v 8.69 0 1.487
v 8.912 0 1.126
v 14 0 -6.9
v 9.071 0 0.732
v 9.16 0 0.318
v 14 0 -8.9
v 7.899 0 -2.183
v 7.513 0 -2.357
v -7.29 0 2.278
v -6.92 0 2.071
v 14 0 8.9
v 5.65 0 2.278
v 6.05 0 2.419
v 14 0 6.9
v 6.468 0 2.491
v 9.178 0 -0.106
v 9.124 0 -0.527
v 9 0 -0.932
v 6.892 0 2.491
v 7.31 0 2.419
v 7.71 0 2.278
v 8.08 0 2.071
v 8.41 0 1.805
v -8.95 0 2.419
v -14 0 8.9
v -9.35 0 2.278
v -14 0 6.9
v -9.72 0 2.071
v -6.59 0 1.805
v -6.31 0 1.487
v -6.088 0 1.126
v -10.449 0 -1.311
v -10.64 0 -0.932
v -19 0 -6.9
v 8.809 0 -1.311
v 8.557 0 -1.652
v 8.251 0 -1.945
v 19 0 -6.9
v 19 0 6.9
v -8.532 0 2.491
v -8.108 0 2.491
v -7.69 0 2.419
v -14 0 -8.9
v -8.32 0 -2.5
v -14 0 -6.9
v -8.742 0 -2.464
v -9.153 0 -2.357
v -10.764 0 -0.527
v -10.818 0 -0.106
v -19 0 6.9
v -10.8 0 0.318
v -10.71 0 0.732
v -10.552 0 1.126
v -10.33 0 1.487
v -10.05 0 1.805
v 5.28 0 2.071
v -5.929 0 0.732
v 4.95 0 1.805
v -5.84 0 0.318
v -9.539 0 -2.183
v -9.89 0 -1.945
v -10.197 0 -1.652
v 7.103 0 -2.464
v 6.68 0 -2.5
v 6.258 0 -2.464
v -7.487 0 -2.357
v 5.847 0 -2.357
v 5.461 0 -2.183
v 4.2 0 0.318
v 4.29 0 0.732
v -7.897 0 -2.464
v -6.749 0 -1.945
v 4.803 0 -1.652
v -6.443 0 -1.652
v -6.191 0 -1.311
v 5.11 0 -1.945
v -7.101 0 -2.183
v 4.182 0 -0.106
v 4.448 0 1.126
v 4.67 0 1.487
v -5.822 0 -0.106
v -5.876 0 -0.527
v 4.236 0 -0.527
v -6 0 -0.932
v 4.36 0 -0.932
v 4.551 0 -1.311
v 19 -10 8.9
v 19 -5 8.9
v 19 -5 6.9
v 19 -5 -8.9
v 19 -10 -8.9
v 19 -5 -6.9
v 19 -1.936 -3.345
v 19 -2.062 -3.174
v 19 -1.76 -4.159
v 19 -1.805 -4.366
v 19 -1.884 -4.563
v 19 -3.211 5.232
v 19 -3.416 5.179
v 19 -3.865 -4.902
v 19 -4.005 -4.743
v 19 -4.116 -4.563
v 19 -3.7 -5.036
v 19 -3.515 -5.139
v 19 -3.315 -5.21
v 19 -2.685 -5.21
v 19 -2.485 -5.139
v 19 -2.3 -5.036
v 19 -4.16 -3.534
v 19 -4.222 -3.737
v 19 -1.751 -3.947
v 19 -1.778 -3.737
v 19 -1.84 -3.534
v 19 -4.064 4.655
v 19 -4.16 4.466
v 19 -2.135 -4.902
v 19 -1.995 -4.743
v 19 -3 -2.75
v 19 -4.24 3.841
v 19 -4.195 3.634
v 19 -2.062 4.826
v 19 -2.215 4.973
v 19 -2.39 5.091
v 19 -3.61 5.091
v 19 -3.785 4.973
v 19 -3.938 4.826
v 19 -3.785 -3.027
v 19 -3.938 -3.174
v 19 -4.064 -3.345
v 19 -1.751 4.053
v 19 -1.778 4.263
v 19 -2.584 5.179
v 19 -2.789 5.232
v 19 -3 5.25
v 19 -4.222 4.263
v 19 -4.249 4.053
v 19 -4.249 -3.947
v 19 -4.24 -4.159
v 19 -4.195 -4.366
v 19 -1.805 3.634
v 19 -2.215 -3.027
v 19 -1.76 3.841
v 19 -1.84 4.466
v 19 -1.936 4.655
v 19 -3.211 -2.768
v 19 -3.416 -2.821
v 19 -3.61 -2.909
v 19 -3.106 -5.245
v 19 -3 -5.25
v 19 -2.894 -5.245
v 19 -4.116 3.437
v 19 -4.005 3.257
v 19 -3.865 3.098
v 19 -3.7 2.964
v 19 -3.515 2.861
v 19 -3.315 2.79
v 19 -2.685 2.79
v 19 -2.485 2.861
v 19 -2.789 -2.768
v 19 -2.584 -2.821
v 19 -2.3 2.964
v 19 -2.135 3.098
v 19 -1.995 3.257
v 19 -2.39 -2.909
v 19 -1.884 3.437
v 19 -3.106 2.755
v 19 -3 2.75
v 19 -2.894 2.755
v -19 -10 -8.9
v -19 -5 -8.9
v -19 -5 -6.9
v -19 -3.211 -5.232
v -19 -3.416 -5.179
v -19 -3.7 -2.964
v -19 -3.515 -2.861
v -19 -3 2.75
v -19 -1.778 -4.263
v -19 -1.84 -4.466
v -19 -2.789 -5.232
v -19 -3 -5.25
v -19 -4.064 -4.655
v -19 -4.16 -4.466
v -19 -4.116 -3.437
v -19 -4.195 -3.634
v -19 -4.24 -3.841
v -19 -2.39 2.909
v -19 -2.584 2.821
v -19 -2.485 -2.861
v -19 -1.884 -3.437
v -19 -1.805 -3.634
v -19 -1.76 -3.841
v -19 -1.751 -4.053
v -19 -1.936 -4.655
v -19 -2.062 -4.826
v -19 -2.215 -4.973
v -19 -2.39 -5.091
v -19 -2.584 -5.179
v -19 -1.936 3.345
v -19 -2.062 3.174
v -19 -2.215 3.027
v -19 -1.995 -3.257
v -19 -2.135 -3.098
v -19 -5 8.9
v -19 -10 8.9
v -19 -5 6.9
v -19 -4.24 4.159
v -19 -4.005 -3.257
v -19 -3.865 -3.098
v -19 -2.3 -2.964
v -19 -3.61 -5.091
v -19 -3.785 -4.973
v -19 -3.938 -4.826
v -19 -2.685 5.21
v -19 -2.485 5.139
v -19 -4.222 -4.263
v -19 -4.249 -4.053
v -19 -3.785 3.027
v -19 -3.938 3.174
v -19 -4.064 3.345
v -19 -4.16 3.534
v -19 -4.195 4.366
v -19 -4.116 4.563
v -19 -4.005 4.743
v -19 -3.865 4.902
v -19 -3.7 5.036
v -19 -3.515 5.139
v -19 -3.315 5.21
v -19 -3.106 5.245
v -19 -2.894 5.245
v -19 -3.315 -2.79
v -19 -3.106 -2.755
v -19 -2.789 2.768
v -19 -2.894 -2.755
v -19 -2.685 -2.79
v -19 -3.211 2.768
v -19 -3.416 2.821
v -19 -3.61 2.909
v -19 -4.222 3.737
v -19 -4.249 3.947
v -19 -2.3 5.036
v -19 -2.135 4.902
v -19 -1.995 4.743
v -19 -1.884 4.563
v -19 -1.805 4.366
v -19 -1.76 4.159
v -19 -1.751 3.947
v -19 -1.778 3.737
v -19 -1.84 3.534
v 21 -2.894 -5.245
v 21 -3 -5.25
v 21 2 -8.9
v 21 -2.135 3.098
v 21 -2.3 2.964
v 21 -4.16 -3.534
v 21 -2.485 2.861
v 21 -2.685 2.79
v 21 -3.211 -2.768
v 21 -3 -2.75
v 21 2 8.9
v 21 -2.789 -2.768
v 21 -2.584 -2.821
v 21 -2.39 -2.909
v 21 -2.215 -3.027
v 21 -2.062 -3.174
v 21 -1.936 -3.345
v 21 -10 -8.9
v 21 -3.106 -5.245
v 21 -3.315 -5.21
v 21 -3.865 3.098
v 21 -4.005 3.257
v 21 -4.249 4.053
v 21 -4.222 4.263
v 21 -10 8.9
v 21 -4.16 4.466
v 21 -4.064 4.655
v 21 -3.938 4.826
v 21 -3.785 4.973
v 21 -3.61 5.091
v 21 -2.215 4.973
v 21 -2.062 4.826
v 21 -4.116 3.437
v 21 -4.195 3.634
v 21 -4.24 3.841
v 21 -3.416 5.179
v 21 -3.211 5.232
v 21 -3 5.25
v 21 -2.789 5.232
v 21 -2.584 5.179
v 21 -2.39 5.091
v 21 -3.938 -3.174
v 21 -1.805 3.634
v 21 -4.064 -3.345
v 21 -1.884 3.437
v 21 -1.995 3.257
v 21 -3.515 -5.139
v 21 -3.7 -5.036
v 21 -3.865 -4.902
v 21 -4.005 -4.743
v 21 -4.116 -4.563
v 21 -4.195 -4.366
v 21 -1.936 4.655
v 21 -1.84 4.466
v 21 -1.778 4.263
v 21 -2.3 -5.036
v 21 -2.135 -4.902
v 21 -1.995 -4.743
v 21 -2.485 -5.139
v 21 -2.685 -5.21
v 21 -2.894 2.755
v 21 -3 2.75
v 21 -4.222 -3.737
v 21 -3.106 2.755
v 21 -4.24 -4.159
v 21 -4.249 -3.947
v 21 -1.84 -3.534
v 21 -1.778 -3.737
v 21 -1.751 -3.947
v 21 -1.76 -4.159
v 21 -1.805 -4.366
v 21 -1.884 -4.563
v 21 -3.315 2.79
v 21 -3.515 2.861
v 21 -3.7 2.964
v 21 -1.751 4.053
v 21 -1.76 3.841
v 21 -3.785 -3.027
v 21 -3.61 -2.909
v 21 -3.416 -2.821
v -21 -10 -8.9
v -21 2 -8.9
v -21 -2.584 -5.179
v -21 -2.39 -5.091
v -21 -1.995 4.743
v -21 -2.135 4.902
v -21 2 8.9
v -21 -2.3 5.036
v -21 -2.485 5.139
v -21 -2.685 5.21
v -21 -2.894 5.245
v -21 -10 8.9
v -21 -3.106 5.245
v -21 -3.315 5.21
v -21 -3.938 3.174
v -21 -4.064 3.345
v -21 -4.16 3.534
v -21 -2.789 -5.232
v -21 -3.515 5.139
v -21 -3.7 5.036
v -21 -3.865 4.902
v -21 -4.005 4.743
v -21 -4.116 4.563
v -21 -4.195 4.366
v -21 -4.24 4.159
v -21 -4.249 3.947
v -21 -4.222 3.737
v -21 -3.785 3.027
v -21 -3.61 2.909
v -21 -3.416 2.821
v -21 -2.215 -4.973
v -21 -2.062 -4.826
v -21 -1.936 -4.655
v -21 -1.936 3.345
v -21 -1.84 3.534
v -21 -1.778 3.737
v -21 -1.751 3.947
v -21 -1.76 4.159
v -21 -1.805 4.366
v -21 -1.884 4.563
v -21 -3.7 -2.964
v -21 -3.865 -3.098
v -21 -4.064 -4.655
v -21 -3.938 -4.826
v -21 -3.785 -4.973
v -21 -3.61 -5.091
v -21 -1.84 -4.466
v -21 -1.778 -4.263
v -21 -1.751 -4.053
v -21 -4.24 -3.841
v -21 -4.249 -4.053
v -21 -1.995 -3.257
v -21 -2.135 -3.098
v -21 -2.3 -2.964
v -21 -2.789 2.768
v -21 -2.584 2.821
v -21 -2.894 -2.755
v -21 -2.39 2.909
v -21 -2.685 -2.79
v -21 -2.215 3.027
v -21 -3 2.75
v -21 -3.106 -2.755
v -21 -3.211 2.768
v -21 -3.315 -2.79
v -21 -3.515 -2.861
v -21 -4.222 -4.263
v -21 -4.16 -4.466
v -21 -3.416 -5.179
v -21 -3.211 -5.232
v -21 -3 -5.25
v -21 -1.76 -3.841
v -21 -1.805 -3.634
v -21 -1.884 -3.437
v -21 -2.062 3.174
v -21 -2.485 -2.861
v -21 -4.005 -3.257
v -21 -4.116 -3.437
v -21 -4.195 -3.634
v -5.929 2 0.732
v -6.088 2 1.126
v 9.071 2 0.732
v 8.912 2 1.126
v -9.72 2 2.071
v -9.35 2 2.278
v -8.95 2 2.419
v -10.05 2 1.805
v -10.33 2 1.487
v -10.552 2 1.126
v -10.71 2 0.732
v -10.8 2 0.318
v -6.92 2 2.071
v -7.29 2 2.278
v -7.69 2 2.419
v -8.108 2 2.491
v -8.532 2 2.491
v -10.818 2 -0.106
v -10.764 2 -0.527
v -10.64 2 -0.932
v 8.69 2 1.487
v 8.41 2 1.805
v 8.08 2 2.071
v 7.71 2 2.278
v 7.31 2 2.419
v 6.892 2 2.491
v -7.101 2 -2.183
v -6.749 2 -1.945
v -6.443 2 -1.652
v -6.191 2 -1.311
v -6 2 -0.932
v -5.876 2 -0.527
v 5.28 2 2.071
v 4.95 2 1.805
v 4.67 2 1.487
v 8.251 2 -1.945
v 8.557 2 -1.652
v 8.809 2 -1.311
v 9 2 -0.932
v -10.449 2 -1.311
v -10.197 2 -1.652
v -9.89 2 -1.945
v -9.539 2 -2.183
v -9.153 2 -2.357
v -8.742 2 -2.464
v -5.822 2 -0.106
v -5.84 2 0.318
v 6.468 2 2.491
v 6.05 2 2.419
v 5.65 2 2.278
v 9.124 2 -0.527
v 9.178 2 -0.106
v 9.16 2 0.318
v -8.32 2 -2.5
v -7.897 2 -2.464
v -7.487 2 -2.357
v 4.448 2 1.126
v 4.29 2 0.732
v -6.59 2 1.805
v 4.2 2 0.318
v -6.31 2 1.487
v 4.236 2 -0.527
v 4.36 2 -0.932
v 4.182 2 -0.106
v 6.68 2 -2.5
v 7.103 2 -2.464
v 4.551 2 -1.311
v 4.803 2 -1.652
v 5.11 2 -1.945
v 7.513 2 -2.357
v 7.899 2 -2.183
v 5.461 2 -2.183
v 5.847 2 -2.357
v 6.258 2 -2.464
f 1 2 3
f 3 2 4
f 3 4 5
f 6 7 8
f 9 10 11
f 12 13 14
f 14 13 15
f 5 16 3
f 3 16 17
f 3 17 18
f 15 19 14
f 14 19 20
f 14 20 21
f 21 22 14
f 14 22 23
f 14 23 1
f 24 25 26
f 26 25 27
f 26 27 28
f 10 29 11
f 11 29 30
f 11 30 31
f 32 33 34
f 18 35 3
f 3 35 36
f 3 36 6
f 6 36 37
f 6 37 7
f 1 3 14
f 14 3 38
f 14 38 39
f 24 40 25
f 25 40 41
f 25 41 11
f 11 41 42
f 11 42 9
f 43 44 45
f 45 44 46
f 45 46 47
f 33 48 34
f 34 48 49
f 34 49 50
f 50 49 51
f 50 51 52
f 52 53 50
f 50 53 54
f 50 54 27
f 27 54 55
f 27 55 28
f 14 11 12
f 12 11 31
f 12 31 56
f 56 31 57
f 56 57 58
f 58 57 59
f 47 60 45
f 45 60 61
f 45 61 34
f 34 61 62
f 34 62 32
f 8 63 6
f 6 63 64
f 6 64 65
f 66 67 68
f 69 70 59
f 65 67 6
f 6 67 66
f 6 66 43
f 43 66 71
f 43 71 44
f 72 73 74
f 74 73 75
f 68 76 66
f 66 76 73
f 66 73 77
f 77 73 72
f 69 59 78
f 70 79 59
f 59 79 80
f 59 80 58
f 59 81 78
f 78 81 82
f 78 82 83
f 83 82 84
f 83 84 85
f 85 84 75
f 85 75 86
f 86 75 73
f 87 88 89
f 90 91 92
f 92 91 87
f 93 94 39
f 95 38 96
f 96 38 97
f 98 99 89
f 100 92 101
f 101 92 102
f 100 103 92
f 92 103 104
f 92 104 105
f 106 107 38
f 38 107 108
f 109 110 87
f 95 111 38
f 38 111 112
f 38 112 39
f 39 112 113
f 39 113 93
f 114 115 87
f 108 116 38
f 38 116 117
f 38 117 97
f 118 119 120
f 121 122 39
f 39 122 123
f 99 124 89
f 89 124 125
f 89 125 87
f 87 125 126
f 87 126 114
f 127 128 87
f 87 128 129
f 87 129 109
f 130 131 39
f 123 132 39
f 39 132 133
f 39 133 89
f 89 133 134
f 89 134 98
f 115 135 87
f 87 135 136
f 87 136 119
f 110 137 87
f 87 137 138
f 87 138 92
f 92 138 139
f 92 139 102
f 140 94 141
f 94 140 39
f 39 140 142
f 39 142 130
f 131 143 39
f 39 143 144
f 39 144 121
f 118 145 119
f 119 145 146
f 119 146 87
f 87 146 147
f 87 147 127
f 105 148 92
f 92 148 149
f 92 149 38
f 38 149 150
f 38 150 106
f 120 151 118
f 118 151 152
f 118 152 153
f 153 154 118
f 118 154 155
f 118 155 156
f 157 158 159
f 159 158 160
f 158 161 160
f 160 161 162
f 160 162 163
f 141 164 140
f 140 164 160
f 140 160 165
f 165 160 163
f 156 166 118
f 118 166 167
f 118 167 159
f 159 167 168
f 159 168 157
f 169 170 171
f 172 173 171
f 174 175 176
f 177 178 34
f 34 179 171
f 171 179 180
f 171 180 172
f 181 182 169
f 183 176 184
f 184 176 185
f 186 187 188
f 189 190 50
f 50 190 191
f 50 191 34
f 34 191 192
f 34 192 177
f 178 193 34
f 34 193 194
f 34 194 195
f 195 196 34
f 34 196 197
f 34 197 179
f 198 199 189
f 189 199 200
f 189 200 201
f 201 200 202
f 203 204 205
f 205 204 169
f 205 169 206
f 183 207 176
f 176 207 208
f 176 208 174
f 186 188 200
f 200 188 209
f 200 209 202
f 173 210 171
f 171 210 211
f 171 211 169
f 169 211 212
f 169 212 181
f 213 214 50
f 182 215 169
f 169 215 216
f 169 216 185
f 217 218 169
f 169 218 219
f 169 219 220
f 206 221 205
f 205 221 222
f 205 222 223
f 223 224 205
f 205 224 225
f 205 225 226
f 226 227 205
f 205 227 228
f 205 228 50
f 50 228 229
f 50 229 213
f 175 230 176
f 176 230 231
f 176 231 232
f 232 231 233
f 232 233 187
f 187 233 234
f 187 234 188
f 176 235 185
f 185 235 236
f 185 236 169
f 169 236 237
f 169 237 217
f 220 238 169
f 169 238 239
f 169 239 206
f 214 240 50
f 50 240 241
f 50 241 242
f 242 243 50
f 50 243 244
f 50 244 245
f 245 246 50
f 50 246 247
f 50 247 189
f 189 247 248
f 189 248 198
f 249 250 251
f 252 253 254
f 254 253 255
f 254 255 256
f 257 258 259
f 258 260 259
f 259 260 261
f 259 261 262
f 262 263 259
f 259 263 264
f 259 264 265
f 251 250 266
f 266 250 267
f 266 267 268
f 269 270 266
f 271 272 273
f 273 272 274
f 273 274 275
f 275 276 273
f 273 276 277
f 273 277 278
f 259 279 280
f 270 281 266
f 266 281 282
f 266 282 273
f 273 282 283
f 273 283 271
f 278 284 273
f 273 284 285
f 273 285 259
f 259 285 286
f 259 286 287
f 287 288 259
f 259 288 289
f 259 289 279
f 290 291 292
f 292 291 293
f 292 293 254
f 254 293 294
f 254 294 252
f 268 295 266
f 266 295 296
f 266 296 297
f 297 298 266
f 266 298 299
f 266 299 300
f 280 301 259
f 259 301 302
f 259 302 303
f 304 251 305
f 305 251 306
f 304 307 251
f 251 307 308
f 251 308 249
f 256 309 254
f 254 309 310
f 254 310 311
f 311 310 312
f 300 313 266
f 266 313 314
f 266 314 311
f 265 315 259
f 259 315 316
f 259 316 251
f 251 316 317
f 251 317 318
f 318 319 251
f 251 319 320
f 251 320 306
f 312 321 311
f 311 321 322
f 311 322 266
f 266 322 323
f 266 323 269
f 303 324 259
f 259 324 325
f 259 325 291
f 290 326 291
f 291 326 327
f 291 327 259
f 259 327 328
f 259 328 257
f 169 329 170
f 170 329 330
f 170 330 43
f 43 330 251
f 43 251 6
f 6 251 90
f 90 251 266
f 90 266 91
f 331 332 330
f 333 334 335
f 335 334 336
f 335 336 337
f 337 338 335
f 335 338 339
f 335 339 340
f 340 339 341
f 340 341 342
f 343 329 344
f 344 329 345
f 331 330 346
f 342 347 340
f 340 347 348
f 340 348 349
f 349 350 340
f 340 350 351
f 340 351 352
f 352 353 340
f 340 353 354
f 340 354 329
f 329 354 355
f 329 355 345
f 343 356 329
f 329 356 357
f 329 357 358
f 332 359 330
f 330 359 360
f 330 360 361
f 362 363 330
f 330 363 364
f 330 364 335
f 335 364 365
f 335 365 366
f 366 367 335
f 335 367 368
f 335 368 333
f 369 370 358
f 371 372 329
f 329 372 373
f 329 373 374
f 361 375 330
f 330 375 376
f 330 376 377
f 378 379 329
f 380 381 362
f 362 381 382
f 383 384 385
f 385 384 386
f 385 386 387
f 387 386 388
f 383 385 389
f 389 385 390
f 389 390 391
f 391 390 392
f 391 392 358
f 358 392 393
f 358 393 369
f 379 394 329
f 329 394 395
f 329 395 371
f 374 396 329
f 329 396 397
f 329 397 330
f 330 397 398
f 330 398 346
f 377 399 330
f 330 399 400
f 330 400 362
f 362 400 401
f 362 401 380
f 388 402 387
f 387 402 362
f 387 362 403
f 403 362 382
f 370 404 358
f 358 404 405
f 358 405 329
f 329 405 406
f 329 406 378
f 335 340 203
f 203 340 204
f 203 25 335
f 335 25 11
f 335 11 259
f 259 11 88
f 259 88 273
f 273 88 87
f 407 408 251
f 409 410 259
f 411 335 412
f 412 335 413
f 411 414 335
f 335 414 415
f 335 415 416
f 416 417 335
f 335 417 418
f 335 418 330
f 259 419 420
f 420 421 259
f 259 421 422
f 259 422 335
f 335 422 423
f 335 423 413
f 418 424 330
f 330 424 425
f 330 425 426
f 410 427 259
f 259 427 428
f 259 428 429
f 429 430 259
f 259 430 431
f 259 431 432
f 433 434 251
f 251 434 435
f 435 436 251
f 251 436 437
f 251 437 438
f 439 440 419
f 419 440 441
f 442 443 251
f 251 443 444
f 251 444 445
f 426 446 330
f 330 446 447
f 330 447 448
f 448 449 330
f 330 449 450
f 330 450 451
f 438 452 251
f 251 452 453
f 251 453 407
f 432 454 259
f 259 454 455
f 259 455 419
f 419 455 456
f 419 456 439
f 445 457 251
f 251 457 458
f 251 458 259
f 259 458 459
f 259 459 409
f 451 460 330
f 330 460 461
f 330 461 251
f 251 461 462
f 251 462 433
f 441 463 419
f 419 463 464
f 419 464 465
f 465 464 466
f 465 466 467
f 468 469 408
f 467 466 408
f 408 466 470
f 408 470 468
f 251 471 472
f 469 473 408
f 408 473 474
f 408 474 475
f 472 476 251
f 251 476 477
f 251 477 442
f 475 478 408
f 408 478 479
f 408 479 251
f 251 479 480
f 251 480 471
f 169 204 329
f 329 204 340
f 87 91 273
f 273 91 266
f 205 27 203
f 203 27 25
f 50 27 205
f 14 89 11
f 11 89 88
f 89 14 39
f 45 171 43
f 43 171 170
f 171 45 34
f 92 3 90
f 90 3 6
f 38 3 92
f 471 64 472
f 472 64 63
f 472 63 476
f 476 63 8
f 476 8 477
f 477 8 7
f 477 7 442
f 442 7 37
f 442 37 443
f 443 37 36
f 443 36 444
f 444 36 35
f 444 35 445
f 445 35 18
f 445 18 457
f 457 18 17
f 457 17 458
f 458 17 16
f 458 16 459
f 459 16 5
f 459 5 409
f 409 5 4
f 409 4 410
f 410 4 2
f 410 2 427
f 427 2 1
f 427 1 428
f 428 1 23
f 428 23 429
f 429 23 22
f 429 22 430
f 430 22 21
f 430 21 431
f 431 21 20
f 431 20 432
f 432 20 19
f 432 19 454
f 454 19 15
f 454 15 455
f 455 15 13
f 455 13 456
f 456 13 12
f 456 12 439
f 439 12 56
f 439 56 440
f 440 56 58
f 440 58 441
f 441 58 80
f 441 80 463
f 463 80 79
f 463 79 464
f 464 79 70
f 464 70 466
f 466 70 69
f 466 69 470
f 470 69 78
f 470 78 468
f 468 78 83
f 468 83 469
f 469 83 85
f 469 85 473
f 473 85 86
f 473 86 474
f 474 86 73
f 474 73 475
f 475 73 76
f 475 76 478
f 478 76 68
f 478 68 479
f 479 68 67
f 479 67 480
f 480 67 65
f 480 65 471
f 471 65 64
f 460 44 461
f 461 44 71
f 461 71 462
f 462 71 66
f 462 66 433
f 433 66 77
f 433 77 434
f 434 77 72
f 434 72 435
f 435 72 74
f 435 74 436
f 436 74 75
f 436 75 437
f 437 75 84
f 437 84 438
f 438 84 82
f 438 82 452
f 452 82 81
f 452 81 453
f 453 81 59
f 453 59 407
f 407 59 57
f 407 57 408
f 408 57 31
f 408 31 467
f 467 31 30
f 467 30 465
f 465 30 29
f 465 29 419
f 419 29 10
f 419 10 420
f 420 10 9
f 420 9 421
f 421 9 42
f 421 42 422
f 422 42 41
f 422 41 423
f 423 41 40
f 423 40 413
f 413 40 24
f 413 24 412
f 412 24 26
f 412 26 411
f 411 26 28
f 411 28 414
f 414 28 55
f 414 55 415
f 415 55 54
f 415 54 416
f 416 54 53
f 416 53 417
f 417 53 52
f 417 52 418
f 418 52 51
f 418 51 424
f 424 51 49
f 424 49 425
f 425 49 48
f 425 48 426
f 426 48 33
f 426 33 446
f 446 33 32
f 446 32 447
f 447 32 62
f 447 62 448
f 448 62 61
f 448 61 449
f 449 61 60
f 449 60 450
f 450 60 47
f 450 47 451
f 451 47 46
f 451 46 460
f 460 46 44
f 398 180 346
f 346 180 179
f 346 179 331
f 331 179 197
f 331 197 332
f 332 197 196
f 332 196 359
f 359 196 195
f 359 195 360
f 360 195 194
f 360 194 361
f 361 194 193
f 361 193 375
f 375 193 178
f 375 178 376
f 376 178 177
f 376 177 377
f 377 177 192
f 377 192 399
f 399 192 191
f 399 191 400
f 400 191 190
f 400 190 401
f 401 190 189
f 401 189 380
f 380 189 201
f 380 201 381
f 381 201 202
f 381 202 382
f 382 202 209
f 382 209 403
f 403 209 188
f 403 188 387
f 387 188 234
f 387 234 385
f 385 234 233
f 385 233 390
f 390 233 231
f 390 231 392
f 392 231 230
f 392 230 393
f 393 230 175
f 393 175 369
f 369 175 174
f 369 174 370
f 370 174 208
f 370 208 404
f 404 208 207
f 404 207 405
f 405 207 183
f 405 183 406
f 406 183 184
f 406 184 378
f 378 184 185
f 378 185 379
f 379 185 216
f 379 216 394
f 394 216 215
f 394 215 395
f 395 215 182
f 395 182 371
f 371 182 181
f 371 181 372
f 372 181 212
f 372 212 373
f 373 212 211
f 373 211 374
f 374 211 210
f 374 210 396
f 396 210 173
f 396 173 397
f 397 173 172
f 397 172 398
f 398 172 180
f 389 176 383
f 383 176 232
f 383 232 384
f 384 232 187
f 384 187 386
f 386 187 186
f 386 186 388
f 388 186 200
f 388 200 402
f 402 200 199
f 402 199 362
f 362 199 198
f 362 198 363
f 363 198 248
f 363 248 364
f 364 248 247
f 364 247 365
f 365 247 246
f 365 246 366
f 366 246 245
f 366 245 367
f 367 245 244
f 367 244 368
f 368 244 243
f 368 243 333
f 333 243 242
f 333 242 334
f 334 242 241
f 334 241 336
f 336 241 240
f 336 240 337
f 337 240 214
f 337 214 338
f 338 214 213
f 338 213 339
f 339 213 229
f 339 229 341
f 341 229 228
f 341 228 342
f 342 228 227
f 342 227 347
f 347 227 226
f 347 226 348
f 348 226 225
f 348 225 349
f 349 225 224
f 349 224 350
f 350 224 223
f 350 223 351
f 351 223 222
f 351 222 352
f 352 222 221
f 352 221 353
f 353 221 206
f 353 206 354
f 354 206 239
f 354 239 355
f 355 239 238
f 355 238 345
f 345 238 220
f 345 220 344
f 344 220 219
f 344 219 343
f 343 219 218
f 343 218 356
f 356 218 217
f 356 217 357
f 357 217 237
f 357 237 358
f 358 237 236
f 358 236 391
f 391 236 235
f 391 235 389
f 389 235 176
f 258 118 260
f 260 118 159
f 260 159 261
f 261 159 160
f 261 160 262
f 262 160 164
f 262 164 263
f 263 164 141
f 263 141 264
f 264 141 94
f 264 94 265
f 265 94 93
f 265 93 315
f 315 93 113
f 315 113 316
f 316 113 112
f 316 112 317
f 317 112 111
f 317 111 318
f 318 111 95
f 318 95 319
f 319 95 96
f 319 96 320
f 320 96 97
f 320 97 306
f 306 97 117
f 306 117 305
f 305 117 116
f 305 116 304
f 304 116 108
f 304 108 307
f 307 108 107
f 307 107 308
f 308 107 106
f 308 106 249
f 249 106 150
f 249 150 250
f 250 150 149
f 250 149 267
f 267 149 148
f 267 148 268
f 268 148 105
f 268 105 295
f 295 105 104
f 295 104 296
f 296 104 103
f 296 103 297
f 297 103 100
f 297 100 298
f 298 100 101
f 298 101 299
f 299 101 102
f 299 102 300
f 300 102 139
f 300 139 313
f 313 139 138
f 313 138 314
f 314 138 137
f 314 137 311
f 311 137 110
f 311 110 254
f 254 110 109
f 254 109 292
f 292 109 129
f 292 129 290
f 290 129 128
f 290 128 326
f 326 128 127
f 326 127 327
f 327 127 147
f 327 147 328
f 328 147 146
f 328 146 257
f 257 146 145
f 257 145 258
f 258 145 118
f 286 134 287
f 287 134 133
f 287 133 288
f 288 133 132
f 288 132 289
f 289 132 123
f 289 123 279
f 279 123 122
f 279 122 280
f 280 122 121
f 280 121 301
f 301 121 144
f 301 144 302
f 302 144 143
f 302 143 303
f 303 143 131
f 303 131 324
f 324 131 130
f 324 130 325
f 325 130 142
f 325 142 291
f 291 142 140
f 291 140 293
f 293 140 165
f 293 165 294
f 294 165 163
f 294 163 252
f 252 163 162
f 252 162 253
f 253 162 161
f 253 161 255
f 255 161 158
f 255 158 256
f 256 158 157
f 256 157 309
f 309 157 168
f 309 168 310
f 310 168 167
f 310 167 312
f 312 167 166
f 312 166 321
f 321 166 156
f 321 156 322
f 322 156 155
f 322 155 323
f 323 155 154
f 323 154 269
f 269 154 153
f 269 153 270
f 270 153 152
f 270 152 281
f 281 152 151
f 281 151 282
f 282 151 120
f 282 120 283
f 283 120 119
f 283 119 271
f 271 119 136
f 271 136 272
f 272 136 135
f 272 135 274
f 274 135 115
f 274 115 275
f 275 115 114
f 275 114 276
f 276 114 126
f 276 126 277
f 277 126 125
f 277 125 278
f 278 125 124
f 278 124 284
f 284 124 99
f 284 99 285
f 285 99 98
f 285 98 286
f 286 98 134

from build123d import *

# Parameters (mm, degrees)
SKETCH2_W           = 42
SKETCH2_H           = 17.8
BOSS_EXTRUDE1_DEPTH = 2
SKETCH3_W           = 2
SKETCH3_H           = 17.8
BOSS_EXTRUDE2_DEPTH = 10
BOSS_EXTRUDE3_DEPTH = 2
SKETCH5_R           = 2.5
CUT_EXTRUDE1_DEPTH  = 2
SKETCH6_R           = 1.25
CUT_EXTRUDE2_DEPTH  = 2


with BuildPart() as part:
    # Sketch2 → Boss-Extrude1 (new body)
    with BuildSketch(Plane(origin=(0, 0, 0), x_dir=(1, 0, 0), z_dir=(0, 1, 0))):
        Rectangle(SKETCH2_W, SKETCH2_H)
    extrude(amount=BOSS_EXTRUDE1_DEPTH)

    # Sketch3 → Boss-Extrude2 (add)
    with BuildSketch(Plane.XZ):
        with Locations((-20, 0)):
            Rectangle(SKETCH3_W, SKETCH3_H)
        with Locations((20, 0)):
            Rectangle(SKETCH3_W, SKETCH3_H)
    extrude(amount=BOSS_EXTRUDE2_DEPTH)

    # Sketch4 → Boss-Extrude3 (add)
    with BuildSketch(Plane.XY.offset(8.9)):
        Polygon((-19, 0), (-14, 0), (-19, -5), align=None)
        Polygon((19, -5), (14, 0), (19, 0), align=None)
    boss_extrude3 = extrude(amount=-BOSS_EXTRUDE3_DEPTH)

    # Mirror1: Boss-Extrude3 across plane
    add(boss_extrude3.mirror(Plane.XY))

    # Sketch5 → Cut-Extrude1 (cut)
    with BuildSketch(Plane.XZ):
        with Locations((-8.319906625, 0)):
            Circle(SKETCH5_R)
        with Locations((6.680093375, 0)):
            Circle(SKETCH5_R)
    extrude(amount=-CUT_EXTRUDE1_DEPTH, mode=Mode.SUBTRACT)

    # Sketch6 → Cut-Extrude2 (cut)
    with BuildSketch(Plane(origin=(-19, 0, 0), x_dir=(0, 0, -1), z_dir=(1, 0, 0))):
        with Locations((-4, -3)):
            Circle(SKETCH6_R)
        with Locations((4, -3)):
            Circle(SKETCH6_R)
    cut_extrude2 = extrude(amount=-CUT_EXTRUDE2_DEPTH, mode=Mode.SUBTRACT)

    # Mirror2: Cut-Extrude2 across plane
    add(cut_extrude2.mirror(Plane(origin=(0, 0, 0), x_dir=(0, 0, 1), z_dir=(1, 0, 0))), mode=Mode.SUBTRACT)


solid = part.part
